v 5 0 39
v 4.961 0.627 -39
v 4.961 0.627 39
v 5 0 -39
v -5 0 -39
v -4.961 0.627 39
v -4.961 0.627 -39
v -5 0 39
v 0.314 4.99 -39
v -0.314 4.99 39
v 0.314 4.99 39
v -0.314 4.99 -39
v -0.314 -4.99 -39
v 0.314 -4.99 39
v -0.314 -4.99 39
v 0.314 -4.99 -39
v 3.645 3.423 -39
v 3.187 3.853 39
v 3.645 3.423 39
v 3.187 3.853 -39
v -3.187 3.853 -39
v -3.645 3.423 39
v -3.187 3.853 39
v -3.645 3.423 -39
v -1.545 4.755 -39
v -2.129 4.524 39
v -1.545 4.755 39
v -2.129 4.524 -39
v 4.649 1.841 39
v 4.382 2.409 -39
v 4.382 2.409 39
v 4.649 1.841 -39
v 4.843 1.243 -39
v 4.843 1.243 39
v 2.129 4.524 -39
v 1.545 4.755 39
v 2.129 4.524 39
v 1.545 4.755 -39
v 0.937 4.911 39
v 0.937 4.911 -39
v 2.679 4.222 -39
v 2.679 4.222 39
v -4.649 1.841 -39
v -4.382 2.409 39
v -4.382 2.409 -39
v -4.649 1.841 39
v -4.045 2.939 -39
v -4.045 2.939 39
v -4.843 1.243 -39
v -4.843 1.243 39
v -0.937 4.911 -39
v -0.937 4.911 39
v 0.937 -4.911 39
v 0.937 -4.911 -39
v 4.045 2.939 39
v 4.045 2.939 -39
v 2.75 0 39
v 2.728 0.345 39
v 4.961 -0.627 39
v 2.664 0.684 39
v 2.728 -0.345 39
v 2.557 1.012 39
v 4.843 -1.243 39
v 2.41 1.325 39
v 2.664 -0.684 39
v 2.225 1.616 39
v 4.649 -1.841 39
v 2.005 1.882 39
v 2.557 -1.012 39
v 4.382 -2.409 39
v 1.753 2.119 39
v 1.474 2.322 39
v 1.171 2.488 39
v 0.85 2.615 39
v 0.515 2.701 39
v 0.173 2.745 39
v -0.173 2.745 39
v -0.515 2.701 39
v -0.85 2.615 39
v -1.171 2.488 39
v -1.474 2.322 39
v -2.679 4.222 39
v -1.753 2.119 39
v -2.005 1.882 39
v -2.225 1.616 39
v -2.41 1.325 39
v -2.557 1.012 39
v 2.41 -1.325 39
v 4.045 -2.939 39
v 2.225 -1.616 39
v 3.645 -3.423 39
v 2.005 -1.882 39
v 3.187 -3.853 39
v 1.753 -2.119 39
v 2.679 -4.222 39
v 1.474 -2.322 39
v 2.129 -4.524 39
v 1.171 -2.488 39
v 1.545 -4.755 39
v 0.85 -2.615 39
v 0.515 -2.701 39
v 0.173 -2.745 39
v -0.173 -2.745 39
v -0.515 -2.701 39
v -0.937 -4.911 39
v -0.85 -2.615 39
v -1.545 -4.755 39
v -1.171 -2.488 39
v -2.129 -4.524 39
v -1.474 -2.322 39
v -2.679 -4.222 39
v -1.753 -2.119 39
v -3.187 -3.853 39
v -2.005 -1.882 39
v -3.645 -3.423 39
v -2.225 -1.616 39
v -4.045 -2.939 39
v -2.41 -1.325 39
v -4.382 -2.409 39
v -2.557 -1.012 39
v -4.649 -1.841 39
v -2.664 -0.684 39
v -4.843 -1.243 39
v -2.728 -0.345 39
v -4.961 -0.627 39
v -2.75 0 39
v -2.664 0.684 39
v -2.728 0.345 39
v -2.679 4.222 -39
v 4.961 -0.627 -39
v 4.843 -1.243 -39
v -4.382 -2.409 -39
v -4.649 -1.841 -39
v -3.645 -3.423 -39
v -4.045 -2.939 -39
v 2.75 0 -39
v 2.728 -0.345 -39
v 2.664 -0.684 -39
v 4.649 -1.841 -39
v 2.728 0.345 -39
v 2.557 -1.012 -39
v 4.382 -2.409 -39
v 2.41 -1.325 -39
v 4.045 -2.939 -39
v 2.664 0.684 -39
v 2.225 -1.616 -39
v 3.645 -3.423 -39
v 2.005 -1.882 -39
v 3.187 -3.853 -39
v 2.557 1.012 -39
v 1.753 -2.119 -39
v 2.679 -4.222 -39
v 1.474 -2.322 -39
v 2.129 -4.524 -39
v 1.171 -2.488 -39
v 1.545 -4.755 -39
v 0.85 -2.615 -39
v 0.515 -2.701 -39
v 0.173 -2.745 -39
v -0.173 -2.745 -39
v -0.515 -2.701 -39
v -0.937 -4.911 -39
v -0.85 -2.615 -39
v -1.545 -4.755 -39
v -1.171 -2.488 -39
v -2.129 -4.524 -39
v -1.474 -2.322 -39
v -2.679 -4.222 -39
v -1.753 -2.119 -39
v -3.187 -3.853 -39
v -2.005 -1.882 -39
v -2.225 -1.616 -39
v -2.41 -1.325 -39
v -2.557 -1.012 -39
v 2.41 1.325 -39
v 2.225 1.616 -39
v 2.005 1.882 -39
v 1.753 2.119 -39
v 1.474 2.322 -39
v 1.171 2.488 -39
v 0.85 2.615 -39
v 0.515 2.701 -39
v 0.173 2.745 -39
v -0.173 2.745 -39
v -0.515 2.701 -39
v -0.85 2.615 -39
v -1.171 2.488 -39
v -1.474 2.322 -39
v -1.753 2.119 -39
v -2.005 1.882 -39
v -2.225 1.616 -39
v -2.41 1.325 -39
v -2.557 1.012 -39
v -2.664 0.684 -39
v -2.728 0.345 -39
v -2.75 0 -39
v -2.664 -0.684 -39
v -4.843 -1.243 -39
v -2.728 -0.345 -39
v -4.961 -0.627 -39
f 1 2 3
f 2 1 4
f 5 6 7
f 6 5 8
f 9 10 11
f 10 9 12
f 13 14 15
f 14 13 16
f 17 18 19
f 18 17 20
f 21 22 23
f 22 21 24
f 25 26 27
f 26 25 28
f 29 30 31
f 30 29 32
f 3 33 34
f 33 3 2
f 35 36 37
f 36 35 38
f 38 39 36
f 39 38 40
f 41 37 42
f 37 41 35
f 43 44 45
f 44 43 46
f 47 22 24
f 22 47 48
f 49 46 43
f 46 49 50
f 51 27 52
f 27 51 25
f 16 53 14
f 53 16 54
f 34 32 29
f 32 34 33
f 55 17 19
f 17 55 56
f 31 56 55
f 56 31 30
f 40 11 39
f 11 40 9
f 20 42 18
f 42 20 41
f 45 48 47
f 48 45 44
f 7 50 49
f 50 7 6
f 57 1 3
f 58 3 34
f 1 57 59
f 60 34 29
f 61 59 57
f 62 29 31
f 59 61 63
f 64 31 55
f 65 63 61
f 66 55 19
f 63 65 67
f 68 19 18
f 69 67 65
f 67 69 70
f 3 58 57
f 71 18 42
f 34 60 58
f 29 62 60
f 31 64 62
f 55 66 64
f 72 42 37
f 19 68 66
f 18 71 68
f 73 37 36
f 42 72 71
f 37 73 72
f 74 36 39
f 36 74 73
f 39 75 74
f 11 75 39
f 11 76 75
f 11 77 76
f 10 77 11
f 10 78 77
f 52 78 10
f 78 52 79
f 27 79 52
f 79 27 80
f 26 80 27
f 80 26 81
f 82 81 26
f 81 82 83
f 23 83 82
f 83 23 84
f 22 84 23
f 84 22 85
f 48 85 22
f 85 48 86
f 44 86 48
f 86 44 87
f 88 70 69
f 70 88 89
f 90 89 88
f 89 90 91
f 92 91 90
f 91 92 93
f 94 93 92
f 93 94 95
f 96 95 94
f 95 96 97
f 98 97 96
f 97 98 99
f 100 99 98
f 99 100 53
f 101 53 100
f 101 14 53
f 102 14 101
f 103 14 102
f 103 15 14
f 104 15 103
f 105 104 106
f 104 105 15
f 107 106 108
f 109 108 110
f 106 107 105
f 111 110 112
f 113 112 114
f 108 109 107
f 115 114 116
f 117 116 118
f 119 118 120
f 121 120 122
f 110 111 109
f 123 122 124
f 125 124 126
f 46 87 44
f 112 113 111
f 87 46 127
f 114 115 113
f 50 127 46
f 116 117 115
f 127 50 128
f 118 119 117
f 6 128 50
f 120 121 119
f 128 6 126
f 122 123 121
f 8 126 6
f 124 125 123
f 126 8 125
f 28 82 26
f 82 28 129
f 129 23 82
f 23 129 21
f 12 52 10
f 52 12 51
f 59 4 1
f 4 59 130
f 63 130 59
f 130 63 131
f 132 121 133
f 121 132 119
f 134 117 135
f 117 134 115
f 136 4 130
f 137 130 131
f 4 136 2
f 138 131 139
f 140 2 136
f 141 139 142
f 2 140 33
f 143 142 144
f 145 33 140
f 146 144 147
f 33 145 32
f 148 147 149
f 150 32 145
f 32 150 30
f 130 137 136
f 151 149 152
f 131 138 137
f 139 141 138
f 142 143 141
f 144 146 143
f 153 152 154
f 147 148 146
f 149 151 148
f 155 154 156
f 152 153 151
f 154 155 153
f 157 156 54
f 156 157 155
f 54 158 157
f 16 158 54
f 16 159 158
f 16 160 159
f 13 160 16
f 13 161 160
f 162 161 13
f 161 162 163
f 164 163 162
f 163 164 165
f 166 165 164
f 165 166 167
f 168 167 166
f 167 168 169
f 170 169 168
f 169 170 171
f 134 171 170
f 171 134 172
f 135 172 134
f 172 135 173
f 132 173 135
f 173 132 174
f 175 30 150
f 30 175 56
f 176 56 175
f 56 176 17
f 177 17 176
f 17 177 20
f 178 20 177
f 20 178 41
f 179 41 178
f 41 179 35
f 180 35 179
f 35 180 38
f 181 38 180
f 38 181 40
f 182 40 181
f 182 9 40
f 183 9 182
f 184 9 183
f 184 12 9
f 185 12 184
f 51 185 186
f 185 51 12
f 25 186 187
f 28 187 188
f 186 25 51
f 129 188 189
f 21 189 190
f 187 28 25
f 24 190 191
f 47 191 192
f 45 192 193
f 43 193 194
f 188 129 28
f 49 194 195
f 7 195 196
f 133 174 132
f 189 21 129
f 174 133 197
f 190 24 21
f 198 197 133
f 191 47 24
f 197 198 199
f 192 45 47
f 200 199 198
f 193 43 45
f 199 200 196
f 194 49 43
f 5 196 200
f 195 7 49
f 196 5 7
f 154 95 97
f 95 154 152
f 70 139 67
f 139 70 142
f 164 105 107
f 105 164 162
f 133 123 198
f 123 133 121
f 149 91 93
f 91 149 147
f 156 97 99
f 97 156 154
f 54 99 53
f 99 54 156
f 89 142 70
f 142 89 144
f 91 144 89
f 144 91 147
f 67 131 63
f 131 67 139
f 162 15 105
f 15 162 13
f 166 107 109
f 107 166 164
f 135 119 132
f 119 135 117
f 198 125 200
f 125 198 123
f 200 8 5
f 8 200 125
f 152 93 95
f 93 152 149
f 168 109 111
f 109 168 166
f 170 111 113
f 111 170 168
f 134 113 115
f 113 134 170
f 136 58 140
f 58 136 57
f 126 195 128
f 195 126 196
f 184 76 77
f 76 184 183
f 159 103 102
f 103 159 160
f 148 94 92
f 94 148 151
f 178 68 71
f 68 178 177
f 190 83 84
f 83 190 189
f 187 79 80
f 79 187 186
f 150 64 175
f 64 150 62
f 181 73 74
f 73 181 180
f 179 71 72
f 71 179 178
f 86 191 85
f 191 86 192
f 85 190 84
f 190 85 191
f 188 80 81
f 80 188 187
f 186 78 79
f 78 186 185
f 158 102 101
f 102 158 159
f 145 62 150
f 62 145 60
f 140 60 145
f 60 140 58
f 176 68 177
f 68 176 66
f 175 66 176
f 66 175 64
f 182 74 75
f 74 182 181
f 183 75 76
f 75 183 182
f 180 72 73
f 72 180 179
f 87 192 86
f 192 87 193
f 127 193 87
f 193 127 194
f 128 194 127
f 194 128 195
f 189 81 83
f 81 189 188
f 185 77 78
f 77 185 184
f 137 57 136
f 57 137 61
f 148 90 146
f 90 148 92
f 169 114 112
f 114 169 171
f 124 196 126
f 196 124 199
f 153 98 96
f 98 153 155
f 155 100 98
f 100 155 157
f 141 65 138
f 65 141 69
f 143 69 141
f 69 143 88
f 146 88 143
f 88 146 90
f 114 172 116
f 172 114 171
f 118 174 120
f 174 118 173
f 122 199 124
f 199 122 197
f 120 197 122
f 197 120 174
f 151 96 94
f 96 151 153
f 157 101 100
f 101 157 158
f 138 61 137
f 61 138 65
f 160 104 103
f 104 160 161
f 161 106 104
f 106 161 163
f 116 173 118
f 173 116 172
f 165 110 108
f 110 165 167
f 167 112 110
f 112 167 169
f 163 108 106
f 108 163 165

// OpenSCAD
$fn = 50;


difference() {
	union() {
		translate(v = [0, 0, -39.0000000000]) {
			cylinder(h = 78, r = 5.0000000000);
		}
	}
	union() {
		translate(v = [0, 0, -100.0000000000]) {
			cylinder(h = 200, r = 2.7500000000);
		}
	}
}
